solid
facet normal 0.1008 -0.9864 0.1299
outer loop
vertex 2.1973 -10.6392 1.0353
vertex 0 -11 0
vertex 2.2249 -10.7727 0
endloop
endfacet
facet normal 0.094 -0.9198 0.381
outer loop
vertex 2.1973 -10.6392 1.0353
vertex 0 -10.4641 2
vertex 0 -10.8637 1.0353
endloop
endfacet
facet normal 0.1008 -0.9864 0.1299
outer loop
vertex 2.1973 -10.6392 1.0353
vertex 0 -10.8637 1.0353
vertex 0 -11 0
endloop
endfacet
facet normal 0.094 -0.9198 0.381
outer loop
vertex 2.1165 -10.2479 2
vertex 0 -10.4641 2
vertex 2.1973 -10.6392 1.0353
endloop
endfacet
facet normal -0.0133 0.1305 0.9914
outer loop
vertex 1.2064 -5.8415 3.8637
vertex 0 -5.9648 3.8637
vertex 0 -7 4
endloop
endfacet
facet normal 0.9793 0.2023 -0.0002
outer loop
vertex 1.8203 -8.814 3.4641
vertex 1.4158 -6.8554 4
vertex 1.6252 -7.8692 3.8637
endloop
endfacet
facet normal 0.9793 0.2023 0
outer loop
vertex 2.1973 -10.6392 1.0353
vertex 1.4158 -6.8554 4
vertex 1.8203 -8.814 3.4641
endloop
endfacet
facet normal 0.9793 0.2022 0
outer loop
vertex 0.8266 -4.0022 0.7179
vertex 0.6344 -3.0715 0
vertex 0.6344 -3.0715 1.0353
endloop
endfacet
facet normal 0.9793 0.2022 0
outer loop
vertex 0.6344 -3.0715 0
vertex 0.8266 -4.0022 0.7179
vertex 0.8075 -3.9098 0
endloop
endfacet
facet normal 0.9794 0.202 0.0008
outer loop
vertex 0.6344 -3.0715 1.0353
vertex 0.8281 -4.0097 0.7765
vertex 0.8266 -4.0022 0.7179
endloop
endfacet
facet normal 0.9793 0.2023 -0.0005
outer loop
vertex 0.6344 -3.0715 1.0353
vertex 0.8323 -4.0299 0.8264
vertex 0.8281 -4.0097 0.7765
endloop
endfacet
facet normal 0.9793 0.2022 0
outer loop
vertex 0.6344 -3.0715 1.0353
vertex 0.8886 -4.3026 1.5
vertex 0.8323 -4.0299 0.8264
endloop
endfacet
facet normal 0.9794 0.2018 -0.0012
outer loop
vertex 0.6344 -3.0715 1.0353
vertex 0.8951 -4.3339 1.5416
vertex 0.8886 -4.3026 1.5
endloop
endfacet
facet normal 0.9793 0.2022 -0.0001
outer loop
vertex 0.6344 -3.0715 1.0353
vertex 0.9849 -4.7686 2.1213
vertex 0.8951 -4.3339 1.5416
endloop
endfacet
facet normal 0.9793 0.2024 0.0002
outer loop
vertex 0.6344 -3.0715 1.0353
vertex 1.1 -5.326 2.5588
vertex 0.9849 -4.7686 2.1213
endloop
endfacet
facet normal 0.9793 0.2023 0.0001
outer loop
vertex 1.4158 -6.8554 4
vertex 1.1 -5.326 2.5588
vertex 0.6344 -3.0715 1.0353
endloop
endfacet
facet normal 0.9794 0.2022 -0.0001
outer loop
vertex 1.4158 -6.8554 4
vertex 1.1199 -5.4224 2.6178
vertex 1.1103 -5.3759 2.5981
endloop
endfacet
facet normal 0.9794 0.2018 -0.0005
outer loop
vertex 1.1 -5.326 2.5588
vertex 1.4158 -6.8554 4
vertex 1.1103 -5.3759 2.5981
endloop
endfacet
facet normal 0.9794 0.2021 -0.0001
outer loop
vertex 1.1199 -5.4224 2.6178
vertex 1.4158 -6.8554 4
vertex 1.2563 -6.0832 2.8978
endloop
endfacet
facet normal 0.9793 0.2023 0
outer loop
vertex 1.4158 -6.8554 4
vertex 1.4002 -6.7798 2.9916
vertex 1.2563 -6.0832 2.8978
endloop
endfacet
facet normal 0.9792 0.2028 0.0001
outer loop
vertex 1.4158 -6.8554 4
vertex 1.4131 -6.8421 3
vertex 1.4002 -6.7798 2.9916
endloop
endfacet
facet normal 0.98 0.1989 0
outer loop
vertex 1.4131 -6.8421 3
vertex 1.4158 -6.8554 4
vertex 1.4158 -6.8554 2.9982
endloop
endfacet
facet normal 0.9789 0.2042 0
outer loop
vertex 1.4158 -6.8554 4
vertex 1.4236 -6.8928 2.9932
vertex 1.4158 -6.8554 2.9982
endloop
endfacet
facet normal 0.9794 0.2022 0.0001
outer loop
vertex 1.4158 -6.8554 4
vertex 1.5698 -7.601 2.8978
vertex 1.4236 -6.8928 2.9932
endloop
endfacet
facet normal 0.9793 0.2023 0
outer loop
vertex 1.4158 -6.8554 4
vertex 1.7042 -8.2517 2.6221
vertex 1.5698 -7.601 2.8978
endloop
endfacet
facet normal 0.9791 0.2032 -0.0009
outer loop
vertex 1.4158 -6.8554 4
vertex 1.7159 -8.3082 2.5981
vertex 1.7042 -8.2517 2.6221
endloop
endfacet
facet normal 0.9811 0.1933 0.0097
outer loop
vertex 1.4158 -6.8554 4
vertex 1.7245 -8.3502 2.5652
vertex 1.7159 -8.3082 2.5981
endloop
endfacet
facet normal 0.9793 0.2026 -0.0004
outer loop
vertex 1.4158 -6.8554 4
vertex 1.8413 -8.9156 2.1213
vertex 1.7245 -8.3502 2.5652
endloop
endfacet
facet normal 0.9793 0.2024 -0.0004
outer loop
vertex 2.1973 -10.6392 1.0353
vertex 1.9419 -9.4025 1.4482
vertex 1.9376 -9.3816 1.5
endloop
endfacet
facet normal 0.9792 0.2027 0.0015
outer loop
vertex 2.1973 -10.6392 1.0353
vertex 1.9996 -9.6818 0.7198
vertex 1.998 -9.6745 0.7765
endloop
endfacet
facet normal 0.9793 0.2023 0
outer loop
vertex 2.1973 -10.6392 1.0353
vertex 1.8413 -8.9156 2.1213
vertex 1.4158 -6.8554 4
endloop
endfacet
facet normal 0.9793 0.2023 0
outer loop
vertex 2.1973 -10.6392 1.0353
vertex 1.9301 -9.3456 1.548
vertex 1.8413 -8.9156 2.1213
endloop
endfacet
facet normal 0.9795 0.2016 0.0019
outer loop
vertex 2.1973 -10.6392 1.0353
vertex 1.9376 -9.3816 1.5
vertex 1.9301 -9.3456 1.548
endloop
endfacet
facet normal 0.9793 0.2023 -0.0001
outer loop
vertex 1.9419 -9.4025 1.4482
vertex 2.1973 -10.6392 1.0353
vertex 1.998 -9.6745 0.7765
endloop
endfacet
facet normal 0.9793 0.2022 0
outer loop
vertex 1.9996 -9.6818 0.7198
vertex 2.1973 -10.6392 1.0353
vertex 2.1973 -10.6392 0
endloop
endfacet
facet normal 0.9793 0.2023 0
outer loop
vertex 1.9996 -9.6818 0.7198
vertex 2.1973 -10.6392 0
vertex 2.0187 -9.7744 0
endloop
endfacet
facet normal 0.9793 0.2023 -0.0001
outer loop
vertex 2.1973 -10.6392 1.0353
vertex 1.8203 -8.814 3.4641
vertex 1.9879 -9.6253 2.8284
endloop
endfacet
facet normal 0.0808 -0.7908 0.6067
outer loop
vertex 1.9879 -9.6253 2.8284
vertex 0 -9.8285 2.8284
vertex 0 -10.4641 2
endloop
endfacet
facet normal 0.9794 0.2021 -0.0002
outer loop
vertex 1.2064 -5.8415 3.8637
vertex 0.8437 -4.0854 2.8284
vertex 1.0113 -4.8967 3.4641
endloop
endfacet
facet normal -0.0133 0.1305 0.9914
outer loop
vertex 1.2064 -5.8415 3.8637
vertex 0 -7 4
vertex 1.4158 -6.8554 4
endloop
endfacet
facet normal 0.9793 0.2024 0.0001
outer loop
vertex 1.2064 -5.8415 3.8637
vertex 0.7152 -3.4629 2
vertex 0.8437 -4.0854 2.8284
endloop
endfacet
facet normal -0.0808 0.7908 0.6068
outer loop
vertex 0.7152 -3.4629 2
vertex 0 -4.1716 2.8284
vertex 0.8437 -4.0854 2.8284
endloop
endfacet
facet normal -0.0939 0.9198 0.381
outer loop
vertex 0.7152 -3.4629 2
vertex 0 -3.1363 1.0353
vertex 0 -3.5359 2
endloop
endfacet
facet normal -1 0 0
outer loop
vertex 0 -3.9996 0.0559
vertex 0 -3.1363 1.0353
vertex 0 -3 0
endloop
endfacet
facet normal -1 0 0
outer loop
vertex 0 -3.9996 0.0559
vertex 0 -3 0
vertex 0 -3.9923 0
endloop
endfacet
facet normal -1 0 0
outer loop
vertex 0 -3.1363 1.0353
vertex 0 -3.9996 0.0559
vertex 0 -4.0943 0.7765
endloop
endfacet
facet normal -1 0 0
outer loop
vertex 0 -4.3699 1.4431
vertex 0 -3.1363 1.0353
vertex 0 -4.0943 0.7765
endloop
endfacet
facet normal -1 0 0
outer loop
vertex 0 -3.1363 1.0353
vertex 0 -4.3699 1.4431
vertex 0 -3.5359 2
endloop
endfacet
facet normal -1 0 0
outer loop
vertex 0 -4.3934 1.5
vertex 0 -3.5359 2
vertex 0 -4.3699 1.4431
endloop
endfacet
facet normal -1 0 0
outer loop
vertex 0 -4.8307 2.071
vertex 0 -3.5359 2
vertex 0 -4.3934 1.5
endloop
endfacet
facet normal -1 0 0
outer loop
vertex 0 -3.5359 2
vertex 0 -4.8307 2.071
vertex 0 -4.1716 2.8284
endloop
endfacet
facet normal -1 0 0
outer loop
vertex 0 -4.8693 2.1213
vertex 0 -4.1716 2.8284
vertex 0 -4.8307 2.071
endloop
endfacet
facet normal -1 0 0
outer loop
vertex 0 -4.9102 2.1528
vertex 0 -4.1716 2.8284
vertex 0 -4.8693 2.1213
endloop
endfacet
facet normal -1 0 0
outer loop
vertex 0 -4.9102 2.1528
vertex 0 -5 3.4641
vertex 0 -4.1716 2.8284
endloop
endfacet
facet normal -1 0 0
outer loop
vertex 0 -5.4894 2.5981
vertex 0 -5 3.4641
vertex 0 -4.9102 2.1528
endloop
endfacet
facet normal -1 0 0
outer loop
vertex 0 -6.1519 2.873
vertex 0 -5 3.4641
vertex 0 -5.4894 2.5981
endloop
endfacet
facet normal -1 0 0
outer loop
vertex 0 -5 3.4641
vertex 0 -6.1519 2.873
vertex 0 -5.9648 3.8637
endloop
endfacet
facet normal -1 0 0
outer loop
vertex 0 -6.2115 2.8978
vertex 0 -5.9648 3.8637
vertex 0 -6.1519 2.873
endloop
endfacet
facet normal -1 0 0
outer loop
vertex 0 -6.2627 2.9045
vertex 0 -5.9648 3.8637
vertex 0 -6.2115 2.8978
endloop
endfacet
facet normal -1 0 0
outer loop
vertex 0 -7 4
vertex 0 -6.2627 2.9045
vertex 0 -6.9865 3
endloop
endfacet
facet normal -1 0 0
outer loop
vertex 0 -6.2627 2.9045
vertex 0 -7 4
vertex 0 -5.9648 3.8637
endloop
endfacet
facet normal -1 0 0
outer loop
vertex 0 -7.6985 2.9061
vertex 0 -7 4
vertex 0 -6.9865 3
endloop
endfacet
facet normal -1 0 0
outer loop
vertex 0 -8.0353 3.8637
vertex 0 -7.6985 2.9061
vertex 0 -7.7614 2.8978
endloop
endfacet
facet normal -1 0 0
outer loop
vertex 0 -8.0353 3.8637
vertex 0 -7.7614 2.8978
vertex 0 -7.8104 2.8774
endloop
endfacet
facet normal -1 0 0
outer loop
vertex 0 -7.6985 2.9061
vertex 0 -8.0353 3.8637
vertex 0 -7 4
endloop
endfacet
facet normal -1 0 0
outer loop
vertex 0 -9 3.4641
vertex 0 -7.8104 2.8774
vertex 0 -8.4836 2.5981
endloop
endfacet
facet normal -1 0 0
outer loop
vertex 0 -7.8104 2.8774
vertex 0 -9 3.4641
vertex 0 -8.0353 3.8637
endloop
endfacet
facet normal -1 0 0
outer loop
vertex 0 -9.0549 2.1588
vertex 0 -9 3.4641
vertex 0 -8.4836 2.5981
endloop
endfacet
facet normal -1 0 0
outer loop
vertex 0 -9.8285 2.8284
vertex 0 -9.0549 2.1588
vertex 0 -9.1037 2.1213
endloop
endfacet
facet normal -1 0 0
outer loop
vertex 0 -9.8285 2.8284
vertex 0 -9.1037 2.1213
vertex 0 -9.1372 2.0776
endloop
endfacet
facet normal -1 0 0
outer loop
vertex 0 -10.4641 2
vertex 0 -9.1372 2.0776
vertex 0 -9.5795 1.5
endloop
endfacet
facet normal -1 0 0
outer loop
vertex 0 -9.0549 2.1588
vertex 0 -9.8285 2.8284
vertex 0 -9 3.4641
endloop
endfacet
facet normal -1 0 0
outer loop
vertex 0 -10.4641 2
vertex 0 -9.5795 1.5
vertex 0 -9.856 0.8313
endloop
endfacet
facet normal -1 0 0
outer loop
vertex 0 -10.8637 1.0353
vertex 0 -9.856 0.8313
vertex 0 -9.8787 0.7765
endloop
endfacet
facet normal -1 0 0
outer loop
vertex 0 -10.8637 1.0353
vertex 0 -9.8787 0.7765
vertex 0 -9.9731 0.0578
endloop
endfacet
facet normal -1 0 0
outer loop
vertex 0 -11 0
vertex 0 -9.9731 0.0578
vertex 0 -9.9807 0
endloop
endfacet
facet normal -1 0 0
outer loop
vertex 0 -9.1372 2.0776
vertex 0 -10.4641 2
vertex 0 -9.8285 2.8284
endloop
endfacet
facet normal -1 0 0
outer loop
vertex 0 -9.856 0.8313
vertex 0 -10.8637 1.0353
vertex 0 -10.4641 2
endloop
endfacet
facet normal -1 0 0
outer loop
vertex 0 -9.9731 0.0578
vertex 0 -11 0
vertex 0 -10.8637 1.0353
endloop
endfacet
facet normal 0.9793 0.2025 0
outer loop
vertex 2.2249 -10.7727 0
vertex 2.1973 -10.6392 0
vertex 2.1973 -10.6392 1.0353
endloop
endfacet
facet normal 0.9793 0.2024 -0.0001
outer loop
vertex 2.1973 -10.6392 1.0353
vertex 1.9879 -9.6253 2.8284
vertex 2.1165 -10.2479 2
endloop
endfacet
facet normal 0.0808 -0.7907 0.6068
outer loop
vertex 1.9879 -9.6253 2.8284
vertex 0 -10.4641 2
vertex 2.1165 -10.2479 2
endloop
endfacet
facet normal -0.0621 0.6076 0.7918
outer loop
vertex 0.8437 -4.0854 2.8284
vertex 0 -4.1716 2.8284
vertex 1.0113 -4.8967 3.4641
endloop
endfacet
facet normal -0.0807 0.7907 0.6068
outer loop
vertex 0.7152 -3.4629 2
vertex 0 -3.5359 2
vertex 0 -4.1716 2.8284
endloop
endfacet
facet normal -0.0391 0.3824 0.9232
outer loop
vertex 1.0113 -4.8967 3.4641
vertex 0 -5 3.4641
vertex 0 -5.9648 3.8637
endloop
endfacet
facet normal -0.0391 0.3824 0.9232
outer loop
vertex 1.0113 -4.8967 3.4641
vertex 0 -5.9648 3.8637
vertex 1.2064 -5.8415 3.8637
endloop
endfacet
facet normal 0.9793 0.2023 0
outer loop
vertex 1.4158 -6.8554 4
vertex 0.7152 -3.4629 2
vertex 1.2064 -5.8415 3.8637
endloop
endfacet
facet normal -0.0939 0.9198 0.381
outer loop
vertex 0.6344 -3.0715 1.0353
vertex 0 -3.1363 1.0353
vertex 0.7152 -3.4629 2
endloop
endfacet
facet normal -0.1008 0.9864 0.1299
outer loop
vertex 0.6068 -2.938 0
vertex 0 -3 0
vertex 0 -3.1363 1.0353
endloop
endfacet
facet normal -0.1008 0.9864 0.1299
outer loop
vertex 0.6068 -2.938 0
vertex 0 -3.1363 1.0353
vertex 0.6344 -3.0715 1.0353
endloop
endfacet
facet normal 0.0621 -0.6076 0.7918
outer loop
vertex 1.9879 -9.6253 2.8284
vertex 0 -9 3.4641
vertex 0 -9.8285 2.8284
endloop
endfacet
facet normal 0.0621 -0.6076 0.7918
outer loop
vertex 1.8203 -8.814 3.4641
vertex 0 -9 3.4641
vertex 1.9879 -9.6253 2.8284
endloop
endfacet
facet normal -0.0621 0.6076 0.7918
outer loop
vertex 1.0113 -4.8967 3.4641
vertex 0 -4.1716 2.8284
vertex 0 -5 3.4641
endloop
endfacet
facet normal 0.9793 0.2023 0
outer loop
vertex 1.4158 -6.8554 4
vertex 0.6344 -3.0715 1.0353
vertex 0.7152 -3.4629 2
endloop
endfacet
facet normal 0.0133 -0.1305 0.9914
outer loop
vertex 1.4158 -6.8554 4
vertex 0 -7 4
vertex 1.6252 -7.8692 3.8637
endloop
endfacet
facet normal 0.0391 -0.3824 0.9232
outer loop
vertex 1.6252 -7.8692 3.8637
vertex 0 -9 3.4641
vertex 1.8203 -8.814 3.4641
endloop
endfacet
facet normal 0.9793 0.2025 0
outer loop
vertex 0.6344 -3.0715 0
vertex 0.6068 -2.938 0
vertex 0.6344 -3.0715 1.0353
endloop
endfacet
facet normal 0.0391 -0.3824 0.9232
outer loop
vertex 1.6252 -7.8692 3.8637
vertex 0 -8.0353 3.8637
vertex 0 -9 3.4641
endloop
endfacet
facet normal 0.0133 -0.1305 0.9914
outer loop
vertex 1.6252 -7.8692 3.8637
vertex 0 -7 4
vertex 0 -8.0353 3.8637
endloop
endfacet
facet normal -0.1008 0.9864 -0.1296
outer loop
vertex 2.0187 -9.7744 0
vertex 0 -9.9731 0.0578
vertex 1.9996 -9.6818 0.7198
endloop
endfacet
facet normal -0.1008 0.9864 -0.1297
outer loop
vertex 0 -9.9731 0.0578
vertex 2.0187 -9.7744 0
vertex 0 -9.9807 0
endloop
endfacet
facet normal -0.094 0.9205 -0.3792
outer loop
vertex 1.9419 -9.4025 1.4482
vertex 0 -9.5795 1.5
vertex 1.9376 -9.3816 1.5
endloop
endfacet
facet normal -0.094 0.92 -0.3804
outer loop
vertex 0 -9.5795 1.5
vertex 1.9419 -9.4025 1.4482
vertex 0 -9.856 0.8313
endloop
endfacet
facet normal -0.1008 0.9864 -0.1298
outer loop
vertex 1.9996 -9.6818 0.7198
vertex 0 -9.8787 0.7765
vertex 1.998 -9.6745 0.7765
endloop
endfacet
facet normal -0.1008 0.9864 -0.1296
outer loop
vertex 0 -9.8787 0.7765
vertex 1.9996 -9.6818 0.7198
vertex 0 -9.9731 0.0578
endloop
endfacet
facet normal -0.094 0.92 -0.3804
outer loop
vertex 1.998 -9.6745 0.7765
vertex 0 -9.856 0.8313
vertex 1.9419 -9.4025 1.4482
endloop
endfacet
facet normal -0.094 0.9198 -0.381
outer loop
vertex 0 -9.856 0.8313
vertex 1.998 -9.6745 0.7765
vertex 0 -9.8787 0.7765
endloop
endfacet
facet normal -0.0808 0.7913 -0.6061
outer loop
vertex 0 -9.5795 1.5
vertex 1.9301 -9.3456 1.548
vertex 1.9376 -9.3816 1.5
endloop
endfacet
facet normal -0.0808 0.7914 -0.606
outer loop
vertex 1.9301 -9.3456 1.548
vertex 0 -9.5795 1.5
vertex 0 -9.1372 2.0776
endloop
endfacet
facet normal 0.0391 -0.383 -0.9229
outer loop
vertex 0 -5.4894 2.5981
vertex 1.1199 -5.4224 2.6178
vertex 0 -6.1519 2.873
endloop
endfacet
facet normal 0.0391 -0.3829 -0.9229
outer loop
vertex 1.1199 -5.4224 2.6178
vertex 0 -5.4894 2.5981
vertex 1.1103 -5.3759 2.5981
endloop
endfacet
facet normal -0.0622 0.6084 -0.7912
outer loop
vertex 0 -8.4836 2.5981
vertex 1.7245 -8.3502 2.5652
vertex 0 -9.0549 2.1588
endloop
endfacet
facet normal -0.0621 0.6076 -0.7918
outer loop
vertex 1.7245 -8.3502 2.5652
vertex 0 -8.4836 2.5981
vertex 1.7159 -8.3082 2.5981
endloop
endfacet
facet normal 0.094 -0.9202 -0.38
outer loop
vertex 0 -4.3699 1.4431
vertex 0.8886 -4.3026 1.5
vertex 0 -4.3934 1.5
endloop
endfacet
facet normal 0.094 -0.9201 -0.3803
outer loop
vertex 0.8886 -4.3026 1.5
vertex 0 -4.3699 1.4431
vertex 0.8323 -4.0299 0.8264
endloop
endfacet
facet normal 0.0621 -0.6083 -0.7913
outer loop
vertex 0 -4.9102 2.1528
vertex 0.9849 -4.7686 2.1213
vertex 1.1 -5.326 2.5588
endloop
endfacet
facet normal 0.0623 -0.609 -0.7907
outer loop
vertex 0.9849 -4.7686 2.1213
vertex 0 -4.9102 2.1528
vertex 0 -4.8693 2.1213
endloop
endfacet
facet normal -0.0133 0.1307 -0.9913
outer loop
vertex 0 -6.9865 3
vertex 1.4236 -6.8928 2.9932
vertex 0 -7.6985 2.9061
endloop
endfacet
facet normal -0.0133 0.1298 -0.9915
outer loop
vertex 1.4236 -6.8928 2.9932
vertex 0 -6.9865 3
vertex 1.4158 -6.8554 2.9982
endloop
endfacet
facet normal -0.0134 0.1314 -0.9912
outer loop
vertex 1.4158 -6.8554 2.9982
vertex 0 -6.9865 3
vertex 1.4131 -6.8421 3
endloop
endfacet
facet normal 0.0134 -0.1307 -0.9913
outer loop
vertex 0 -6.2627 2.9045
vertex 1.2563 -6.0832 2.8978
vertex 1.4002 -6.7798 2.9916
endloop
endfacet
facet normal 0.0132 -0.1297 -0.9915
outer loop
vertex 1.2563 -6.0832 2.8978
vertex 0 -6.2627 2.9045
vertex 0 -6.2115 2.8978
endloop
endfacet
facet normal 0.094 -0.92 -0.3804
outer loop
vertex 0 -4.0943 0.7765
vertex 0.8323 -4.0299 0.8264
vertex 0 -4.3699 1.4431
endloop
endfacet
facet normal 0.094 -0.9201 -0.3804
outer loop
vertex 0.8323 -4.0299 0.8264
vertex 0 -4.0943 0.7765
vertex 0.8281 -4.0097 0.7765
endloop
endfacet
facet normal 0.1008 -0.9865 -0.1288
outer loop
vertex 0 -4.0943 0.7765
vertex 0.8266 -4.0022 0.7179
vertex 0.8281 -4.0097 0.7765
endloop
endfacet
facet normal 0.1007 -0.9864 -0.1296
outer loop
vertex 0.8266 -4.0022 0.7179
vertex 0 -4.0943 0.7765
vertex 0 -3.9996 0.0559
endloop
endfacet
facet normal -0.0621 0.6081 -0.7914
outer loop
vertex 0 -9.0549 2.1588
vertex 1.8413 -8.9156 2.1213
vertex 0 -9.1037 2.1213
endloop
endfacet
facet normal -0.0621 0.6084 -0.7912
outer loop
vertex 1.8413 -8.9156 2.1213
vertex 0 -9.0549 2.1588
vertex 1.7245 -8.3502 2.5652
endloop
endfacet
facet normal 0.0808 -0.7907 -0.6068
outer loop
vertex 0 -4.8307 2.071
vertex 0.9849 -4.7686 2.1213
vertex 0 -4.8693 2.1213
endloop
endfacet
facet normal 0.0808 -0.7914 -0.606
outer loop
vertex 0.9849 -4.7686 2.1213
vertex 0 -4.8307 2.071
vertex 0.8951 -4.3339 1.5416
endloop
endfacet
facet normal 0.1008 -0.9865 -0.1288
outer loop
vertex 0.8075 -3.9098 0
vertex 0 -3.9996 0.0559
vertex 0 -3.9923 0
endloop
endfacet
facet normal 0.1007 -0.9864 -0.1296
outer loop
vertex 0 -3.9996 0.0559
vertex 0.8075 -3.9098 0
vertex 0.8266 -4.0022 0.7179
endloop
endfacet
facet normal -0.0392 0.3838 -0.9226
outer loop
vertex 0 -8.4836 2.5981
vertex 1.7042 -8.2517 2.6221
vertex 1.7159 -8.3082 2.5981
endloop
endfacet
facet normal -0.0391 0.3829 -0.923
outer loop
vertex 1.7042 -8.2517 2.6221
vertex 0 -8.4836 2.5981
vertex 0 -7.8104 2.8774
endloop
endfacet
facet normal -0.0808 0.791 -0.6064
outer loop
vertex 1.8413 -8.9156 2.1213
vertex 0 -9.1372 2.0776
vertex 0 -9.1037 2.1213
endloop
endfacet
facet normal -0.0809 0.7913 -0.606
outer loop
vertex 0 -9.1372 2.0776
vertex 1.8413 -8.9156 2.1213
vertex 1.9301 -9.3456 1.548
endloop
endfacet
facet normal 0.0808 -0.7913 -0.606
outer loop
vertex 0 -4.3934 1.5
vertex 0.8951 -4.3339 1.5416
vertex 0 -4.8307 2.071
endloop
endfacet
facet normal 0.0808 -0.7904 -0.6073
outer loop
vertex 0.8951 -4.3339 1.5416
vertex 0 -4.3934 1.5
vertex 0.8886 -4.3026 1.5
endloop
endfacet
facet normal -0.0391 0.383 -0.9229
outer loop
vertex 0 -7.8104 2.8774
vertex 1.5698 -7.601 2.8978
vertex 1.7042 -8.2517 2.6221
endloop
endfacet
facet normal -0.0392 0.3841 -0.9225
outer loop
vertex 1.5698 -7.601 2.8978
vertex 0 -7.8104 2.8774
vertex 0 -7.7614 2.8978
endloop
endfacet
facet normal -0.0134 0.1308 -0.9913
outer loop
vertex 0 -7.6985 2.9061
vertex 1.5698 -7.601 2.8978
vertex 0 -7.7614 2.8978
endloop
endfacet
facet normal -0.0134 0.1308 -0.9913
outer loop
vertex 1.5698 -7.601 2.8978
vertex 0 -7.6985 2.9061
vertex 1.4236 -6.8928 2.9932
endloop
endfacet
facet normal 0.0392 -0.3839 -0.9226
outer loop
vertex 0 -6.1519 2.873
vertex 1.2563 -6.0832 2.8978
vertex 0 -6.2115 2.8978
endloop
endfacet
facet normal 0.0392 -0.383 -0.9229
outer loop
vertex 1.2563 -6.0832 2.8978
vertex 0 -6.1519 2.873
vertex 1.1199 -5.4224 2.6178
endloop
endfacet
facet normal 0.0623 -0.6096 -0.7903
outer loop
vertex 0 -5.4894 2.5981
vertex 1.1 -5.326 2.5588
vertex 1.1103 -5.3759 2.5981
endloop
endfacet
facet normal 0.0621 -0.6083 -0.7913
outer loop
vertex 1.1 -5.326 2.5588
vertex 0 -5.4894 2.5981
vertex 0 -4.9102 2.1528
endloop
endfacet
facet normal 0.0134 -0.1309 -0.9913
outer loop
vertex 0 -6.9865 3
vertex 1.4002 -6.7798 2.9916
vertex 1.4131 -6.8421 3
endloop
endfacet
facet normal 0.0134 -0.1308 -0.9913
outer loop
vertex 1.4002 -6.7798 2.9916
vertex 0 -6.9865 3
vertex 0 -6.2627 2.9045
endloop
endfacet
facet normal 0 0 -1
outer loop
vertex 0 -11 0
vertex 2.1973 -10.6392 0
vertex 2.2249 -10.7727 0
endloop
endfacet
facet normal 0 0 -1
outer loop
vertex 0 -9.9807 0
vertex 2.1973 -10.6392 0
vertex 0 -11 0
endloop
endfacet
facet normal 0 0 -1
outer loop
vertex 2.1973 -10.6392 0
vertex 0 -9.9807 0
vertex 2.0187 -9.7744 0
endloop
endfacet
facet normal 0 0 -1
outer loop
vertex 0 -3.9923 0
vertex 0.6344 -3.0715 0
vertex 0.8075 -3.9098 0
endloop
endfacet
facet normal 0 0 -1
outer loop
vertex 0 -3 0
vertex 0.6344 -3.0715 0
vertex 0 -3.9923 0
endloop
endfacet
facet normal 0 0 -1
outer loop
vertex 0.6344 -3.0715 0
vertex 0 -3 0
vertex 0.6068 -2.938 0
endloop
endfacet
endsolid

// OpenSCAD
// file: ../build_environments.scad
// build_environments.scad: modules to build level sections
//

module pool(diameter=10.0, wall_height=2.0, step_width=3.0, connections=[])
{
    difference() {
        union() {
        difference() {
            cylinder(h=0.5,r1=diameter+step_width,r2=diameter+step_width,$fn=48);
            translate([0,0,-0.1])
                cylinder(h=0.7,r1=diameter,r2=diameter,$fn=48);
        }
        difference() {
            cylinder(h=wall_height,r1=diameter+step_width+1.0,r2=diameter+step_width+1.0,$fn=48);
            translate([0,0,-0.1])
                cylinder(h=wall_height+0.2,r1=diameter+step_width,r2=diameter+step_width,$fn=48);
        }
        }
    
        for (c = connections)
        {
            rotate([0,90,0]) {
                angle = atan2(c[1],c[0]);
                rotate([-angle,0,0]) {
                    cylinder(h=diameter+5.0,r1=c[2],r2=c[2],$fn=48);
                }
            }
        }
    }
}

module straight(length=10.0, width=2.0, dy1=0.0, dy2=0.0, dz=0.0)
{
    dims = [0, 0, 0, 0, 0, (dz/length)];
    matrix = [
        [ 1, dims[0], dims[1], 0 ],
        [ dims[2], 1, dims[4], 0 ],
        [ dims[5], dims[3], 1, 0 ],
        [ 0, 0, 0, 1 ]
    ];
    multmatrix(matrix)
    difference() {
        translate([dy1,0,0])
        union() {
            rotate([0,90,0]) {
                difference() {
                    cylinder(h=(length-dy1-dy2),r1=width+1.0,r2=width+1.0,$fn=24);
                    translate([0,0,-0.1])
                        cylinder(h=(length-dy1-dy2+0.2),r1=width,r2=width,$fn=24);
                }
                difference() {
                    cylinder(h=1.0,r1=width+2.0,r2=width+2.0,$fn=24);
                    translate([0,0,-0.1])
                        cylinder(h=1.2,r1=width,r2=width,$fn=24);
                }
                translate([0,0,(length-dy1-dy2)-1.0]) {
                    difference() {
                        cylinder(h=1.0,r1=width+2.0,r2=width+2.0,$fn=24);
                        translate([0,0,-0.1])
                            cylinder(h=1.2,r1=width,r2=width,$fn=24);
                    }
                }
            }
        }
        translate([0,0,-(2*width+4.0)/2])
            cube([3*length,3*length,2*width+4.0],center=true);
    }
}

module curve(p0=[0,0], center=[0,0], dir=1, angle=0.0, width=2.0)
{
    radius = sqrt((p0[0]-center[0])*(p0[0]-center[0]) + (p0[1]-center[1])*(p0[1]-center[1]));
    if (dir == 0) {
        difference() {
            rotate([0,0,-90])
            difference() {
                rotate_extrude(angle = angle, convexity = 10, $fn=32)
                    translate([radius, 0, 0])
                        circle(r = width+1.0,$fn=24);
                rotate([0,0,-1.0])
                    rotate_extrude(angle = angle+2.0, convexity = 10, $fn=32)
                        translate([radius, 0, 0])
                            circle(r = width,$fn=24);
            }
            translate([0,0,-(2*width+4.0)/2])
                cube([5*radius,5*radius,2*width+4.0],center=true);
        }
    }
    else {
        difference() {
            rotate([0,0,90])
            difference() {
                rotate_extrude(angle = -angle, convexity = 10, $fn=32)
                    translate([radius, 0, 0])
                        circle(r = width+1.0,$fn=24);
                rotate([0,0,1.0])
                    rotate_extrude(angle = -angle-2.0, convexity = 10, $fn=32)
                        translate([radius, 0, 0])
                            circle(r = width,$fn=24);
            }
            translate([0,0,-(2*width+4.0)/2])
                cube([5*radius,5*radius,2*width+4.0],center=true);
        }
    }

}

// test pool
//pool(diameter=12.0000, wall_height=3.0000, step_width=3.0000, connections=[[0.0000,-26.0000,2.0000], [23.6074,0.0000,2.0000]]);

// test straight, slope
//straight(length=26.0000, width=2.0000, dy1=11.8322, dy2=6.7082, dz=0.0000);
//straight(length=29.1549, width=12.0000, dy1=0.0000, dy2=0.0000, dz=-15.0000);

// test curve
//curve(p0=[23.6074, 0.0000], center=[23.6074, 5.0000], dir=0, angle=60.1011, width=2.0000);
//curve(p0=[33.6426, 12.4219], center=[37.9771, 9.9295], dir=1, angle=120.4627, width=2.0000);
// main file
use <../build_environments.scad>;
curve(p0=[-43.6352, -23.1711], center=[-40.4162, -16.9551], dir=0, angle=11.6691, width=3.0000);
